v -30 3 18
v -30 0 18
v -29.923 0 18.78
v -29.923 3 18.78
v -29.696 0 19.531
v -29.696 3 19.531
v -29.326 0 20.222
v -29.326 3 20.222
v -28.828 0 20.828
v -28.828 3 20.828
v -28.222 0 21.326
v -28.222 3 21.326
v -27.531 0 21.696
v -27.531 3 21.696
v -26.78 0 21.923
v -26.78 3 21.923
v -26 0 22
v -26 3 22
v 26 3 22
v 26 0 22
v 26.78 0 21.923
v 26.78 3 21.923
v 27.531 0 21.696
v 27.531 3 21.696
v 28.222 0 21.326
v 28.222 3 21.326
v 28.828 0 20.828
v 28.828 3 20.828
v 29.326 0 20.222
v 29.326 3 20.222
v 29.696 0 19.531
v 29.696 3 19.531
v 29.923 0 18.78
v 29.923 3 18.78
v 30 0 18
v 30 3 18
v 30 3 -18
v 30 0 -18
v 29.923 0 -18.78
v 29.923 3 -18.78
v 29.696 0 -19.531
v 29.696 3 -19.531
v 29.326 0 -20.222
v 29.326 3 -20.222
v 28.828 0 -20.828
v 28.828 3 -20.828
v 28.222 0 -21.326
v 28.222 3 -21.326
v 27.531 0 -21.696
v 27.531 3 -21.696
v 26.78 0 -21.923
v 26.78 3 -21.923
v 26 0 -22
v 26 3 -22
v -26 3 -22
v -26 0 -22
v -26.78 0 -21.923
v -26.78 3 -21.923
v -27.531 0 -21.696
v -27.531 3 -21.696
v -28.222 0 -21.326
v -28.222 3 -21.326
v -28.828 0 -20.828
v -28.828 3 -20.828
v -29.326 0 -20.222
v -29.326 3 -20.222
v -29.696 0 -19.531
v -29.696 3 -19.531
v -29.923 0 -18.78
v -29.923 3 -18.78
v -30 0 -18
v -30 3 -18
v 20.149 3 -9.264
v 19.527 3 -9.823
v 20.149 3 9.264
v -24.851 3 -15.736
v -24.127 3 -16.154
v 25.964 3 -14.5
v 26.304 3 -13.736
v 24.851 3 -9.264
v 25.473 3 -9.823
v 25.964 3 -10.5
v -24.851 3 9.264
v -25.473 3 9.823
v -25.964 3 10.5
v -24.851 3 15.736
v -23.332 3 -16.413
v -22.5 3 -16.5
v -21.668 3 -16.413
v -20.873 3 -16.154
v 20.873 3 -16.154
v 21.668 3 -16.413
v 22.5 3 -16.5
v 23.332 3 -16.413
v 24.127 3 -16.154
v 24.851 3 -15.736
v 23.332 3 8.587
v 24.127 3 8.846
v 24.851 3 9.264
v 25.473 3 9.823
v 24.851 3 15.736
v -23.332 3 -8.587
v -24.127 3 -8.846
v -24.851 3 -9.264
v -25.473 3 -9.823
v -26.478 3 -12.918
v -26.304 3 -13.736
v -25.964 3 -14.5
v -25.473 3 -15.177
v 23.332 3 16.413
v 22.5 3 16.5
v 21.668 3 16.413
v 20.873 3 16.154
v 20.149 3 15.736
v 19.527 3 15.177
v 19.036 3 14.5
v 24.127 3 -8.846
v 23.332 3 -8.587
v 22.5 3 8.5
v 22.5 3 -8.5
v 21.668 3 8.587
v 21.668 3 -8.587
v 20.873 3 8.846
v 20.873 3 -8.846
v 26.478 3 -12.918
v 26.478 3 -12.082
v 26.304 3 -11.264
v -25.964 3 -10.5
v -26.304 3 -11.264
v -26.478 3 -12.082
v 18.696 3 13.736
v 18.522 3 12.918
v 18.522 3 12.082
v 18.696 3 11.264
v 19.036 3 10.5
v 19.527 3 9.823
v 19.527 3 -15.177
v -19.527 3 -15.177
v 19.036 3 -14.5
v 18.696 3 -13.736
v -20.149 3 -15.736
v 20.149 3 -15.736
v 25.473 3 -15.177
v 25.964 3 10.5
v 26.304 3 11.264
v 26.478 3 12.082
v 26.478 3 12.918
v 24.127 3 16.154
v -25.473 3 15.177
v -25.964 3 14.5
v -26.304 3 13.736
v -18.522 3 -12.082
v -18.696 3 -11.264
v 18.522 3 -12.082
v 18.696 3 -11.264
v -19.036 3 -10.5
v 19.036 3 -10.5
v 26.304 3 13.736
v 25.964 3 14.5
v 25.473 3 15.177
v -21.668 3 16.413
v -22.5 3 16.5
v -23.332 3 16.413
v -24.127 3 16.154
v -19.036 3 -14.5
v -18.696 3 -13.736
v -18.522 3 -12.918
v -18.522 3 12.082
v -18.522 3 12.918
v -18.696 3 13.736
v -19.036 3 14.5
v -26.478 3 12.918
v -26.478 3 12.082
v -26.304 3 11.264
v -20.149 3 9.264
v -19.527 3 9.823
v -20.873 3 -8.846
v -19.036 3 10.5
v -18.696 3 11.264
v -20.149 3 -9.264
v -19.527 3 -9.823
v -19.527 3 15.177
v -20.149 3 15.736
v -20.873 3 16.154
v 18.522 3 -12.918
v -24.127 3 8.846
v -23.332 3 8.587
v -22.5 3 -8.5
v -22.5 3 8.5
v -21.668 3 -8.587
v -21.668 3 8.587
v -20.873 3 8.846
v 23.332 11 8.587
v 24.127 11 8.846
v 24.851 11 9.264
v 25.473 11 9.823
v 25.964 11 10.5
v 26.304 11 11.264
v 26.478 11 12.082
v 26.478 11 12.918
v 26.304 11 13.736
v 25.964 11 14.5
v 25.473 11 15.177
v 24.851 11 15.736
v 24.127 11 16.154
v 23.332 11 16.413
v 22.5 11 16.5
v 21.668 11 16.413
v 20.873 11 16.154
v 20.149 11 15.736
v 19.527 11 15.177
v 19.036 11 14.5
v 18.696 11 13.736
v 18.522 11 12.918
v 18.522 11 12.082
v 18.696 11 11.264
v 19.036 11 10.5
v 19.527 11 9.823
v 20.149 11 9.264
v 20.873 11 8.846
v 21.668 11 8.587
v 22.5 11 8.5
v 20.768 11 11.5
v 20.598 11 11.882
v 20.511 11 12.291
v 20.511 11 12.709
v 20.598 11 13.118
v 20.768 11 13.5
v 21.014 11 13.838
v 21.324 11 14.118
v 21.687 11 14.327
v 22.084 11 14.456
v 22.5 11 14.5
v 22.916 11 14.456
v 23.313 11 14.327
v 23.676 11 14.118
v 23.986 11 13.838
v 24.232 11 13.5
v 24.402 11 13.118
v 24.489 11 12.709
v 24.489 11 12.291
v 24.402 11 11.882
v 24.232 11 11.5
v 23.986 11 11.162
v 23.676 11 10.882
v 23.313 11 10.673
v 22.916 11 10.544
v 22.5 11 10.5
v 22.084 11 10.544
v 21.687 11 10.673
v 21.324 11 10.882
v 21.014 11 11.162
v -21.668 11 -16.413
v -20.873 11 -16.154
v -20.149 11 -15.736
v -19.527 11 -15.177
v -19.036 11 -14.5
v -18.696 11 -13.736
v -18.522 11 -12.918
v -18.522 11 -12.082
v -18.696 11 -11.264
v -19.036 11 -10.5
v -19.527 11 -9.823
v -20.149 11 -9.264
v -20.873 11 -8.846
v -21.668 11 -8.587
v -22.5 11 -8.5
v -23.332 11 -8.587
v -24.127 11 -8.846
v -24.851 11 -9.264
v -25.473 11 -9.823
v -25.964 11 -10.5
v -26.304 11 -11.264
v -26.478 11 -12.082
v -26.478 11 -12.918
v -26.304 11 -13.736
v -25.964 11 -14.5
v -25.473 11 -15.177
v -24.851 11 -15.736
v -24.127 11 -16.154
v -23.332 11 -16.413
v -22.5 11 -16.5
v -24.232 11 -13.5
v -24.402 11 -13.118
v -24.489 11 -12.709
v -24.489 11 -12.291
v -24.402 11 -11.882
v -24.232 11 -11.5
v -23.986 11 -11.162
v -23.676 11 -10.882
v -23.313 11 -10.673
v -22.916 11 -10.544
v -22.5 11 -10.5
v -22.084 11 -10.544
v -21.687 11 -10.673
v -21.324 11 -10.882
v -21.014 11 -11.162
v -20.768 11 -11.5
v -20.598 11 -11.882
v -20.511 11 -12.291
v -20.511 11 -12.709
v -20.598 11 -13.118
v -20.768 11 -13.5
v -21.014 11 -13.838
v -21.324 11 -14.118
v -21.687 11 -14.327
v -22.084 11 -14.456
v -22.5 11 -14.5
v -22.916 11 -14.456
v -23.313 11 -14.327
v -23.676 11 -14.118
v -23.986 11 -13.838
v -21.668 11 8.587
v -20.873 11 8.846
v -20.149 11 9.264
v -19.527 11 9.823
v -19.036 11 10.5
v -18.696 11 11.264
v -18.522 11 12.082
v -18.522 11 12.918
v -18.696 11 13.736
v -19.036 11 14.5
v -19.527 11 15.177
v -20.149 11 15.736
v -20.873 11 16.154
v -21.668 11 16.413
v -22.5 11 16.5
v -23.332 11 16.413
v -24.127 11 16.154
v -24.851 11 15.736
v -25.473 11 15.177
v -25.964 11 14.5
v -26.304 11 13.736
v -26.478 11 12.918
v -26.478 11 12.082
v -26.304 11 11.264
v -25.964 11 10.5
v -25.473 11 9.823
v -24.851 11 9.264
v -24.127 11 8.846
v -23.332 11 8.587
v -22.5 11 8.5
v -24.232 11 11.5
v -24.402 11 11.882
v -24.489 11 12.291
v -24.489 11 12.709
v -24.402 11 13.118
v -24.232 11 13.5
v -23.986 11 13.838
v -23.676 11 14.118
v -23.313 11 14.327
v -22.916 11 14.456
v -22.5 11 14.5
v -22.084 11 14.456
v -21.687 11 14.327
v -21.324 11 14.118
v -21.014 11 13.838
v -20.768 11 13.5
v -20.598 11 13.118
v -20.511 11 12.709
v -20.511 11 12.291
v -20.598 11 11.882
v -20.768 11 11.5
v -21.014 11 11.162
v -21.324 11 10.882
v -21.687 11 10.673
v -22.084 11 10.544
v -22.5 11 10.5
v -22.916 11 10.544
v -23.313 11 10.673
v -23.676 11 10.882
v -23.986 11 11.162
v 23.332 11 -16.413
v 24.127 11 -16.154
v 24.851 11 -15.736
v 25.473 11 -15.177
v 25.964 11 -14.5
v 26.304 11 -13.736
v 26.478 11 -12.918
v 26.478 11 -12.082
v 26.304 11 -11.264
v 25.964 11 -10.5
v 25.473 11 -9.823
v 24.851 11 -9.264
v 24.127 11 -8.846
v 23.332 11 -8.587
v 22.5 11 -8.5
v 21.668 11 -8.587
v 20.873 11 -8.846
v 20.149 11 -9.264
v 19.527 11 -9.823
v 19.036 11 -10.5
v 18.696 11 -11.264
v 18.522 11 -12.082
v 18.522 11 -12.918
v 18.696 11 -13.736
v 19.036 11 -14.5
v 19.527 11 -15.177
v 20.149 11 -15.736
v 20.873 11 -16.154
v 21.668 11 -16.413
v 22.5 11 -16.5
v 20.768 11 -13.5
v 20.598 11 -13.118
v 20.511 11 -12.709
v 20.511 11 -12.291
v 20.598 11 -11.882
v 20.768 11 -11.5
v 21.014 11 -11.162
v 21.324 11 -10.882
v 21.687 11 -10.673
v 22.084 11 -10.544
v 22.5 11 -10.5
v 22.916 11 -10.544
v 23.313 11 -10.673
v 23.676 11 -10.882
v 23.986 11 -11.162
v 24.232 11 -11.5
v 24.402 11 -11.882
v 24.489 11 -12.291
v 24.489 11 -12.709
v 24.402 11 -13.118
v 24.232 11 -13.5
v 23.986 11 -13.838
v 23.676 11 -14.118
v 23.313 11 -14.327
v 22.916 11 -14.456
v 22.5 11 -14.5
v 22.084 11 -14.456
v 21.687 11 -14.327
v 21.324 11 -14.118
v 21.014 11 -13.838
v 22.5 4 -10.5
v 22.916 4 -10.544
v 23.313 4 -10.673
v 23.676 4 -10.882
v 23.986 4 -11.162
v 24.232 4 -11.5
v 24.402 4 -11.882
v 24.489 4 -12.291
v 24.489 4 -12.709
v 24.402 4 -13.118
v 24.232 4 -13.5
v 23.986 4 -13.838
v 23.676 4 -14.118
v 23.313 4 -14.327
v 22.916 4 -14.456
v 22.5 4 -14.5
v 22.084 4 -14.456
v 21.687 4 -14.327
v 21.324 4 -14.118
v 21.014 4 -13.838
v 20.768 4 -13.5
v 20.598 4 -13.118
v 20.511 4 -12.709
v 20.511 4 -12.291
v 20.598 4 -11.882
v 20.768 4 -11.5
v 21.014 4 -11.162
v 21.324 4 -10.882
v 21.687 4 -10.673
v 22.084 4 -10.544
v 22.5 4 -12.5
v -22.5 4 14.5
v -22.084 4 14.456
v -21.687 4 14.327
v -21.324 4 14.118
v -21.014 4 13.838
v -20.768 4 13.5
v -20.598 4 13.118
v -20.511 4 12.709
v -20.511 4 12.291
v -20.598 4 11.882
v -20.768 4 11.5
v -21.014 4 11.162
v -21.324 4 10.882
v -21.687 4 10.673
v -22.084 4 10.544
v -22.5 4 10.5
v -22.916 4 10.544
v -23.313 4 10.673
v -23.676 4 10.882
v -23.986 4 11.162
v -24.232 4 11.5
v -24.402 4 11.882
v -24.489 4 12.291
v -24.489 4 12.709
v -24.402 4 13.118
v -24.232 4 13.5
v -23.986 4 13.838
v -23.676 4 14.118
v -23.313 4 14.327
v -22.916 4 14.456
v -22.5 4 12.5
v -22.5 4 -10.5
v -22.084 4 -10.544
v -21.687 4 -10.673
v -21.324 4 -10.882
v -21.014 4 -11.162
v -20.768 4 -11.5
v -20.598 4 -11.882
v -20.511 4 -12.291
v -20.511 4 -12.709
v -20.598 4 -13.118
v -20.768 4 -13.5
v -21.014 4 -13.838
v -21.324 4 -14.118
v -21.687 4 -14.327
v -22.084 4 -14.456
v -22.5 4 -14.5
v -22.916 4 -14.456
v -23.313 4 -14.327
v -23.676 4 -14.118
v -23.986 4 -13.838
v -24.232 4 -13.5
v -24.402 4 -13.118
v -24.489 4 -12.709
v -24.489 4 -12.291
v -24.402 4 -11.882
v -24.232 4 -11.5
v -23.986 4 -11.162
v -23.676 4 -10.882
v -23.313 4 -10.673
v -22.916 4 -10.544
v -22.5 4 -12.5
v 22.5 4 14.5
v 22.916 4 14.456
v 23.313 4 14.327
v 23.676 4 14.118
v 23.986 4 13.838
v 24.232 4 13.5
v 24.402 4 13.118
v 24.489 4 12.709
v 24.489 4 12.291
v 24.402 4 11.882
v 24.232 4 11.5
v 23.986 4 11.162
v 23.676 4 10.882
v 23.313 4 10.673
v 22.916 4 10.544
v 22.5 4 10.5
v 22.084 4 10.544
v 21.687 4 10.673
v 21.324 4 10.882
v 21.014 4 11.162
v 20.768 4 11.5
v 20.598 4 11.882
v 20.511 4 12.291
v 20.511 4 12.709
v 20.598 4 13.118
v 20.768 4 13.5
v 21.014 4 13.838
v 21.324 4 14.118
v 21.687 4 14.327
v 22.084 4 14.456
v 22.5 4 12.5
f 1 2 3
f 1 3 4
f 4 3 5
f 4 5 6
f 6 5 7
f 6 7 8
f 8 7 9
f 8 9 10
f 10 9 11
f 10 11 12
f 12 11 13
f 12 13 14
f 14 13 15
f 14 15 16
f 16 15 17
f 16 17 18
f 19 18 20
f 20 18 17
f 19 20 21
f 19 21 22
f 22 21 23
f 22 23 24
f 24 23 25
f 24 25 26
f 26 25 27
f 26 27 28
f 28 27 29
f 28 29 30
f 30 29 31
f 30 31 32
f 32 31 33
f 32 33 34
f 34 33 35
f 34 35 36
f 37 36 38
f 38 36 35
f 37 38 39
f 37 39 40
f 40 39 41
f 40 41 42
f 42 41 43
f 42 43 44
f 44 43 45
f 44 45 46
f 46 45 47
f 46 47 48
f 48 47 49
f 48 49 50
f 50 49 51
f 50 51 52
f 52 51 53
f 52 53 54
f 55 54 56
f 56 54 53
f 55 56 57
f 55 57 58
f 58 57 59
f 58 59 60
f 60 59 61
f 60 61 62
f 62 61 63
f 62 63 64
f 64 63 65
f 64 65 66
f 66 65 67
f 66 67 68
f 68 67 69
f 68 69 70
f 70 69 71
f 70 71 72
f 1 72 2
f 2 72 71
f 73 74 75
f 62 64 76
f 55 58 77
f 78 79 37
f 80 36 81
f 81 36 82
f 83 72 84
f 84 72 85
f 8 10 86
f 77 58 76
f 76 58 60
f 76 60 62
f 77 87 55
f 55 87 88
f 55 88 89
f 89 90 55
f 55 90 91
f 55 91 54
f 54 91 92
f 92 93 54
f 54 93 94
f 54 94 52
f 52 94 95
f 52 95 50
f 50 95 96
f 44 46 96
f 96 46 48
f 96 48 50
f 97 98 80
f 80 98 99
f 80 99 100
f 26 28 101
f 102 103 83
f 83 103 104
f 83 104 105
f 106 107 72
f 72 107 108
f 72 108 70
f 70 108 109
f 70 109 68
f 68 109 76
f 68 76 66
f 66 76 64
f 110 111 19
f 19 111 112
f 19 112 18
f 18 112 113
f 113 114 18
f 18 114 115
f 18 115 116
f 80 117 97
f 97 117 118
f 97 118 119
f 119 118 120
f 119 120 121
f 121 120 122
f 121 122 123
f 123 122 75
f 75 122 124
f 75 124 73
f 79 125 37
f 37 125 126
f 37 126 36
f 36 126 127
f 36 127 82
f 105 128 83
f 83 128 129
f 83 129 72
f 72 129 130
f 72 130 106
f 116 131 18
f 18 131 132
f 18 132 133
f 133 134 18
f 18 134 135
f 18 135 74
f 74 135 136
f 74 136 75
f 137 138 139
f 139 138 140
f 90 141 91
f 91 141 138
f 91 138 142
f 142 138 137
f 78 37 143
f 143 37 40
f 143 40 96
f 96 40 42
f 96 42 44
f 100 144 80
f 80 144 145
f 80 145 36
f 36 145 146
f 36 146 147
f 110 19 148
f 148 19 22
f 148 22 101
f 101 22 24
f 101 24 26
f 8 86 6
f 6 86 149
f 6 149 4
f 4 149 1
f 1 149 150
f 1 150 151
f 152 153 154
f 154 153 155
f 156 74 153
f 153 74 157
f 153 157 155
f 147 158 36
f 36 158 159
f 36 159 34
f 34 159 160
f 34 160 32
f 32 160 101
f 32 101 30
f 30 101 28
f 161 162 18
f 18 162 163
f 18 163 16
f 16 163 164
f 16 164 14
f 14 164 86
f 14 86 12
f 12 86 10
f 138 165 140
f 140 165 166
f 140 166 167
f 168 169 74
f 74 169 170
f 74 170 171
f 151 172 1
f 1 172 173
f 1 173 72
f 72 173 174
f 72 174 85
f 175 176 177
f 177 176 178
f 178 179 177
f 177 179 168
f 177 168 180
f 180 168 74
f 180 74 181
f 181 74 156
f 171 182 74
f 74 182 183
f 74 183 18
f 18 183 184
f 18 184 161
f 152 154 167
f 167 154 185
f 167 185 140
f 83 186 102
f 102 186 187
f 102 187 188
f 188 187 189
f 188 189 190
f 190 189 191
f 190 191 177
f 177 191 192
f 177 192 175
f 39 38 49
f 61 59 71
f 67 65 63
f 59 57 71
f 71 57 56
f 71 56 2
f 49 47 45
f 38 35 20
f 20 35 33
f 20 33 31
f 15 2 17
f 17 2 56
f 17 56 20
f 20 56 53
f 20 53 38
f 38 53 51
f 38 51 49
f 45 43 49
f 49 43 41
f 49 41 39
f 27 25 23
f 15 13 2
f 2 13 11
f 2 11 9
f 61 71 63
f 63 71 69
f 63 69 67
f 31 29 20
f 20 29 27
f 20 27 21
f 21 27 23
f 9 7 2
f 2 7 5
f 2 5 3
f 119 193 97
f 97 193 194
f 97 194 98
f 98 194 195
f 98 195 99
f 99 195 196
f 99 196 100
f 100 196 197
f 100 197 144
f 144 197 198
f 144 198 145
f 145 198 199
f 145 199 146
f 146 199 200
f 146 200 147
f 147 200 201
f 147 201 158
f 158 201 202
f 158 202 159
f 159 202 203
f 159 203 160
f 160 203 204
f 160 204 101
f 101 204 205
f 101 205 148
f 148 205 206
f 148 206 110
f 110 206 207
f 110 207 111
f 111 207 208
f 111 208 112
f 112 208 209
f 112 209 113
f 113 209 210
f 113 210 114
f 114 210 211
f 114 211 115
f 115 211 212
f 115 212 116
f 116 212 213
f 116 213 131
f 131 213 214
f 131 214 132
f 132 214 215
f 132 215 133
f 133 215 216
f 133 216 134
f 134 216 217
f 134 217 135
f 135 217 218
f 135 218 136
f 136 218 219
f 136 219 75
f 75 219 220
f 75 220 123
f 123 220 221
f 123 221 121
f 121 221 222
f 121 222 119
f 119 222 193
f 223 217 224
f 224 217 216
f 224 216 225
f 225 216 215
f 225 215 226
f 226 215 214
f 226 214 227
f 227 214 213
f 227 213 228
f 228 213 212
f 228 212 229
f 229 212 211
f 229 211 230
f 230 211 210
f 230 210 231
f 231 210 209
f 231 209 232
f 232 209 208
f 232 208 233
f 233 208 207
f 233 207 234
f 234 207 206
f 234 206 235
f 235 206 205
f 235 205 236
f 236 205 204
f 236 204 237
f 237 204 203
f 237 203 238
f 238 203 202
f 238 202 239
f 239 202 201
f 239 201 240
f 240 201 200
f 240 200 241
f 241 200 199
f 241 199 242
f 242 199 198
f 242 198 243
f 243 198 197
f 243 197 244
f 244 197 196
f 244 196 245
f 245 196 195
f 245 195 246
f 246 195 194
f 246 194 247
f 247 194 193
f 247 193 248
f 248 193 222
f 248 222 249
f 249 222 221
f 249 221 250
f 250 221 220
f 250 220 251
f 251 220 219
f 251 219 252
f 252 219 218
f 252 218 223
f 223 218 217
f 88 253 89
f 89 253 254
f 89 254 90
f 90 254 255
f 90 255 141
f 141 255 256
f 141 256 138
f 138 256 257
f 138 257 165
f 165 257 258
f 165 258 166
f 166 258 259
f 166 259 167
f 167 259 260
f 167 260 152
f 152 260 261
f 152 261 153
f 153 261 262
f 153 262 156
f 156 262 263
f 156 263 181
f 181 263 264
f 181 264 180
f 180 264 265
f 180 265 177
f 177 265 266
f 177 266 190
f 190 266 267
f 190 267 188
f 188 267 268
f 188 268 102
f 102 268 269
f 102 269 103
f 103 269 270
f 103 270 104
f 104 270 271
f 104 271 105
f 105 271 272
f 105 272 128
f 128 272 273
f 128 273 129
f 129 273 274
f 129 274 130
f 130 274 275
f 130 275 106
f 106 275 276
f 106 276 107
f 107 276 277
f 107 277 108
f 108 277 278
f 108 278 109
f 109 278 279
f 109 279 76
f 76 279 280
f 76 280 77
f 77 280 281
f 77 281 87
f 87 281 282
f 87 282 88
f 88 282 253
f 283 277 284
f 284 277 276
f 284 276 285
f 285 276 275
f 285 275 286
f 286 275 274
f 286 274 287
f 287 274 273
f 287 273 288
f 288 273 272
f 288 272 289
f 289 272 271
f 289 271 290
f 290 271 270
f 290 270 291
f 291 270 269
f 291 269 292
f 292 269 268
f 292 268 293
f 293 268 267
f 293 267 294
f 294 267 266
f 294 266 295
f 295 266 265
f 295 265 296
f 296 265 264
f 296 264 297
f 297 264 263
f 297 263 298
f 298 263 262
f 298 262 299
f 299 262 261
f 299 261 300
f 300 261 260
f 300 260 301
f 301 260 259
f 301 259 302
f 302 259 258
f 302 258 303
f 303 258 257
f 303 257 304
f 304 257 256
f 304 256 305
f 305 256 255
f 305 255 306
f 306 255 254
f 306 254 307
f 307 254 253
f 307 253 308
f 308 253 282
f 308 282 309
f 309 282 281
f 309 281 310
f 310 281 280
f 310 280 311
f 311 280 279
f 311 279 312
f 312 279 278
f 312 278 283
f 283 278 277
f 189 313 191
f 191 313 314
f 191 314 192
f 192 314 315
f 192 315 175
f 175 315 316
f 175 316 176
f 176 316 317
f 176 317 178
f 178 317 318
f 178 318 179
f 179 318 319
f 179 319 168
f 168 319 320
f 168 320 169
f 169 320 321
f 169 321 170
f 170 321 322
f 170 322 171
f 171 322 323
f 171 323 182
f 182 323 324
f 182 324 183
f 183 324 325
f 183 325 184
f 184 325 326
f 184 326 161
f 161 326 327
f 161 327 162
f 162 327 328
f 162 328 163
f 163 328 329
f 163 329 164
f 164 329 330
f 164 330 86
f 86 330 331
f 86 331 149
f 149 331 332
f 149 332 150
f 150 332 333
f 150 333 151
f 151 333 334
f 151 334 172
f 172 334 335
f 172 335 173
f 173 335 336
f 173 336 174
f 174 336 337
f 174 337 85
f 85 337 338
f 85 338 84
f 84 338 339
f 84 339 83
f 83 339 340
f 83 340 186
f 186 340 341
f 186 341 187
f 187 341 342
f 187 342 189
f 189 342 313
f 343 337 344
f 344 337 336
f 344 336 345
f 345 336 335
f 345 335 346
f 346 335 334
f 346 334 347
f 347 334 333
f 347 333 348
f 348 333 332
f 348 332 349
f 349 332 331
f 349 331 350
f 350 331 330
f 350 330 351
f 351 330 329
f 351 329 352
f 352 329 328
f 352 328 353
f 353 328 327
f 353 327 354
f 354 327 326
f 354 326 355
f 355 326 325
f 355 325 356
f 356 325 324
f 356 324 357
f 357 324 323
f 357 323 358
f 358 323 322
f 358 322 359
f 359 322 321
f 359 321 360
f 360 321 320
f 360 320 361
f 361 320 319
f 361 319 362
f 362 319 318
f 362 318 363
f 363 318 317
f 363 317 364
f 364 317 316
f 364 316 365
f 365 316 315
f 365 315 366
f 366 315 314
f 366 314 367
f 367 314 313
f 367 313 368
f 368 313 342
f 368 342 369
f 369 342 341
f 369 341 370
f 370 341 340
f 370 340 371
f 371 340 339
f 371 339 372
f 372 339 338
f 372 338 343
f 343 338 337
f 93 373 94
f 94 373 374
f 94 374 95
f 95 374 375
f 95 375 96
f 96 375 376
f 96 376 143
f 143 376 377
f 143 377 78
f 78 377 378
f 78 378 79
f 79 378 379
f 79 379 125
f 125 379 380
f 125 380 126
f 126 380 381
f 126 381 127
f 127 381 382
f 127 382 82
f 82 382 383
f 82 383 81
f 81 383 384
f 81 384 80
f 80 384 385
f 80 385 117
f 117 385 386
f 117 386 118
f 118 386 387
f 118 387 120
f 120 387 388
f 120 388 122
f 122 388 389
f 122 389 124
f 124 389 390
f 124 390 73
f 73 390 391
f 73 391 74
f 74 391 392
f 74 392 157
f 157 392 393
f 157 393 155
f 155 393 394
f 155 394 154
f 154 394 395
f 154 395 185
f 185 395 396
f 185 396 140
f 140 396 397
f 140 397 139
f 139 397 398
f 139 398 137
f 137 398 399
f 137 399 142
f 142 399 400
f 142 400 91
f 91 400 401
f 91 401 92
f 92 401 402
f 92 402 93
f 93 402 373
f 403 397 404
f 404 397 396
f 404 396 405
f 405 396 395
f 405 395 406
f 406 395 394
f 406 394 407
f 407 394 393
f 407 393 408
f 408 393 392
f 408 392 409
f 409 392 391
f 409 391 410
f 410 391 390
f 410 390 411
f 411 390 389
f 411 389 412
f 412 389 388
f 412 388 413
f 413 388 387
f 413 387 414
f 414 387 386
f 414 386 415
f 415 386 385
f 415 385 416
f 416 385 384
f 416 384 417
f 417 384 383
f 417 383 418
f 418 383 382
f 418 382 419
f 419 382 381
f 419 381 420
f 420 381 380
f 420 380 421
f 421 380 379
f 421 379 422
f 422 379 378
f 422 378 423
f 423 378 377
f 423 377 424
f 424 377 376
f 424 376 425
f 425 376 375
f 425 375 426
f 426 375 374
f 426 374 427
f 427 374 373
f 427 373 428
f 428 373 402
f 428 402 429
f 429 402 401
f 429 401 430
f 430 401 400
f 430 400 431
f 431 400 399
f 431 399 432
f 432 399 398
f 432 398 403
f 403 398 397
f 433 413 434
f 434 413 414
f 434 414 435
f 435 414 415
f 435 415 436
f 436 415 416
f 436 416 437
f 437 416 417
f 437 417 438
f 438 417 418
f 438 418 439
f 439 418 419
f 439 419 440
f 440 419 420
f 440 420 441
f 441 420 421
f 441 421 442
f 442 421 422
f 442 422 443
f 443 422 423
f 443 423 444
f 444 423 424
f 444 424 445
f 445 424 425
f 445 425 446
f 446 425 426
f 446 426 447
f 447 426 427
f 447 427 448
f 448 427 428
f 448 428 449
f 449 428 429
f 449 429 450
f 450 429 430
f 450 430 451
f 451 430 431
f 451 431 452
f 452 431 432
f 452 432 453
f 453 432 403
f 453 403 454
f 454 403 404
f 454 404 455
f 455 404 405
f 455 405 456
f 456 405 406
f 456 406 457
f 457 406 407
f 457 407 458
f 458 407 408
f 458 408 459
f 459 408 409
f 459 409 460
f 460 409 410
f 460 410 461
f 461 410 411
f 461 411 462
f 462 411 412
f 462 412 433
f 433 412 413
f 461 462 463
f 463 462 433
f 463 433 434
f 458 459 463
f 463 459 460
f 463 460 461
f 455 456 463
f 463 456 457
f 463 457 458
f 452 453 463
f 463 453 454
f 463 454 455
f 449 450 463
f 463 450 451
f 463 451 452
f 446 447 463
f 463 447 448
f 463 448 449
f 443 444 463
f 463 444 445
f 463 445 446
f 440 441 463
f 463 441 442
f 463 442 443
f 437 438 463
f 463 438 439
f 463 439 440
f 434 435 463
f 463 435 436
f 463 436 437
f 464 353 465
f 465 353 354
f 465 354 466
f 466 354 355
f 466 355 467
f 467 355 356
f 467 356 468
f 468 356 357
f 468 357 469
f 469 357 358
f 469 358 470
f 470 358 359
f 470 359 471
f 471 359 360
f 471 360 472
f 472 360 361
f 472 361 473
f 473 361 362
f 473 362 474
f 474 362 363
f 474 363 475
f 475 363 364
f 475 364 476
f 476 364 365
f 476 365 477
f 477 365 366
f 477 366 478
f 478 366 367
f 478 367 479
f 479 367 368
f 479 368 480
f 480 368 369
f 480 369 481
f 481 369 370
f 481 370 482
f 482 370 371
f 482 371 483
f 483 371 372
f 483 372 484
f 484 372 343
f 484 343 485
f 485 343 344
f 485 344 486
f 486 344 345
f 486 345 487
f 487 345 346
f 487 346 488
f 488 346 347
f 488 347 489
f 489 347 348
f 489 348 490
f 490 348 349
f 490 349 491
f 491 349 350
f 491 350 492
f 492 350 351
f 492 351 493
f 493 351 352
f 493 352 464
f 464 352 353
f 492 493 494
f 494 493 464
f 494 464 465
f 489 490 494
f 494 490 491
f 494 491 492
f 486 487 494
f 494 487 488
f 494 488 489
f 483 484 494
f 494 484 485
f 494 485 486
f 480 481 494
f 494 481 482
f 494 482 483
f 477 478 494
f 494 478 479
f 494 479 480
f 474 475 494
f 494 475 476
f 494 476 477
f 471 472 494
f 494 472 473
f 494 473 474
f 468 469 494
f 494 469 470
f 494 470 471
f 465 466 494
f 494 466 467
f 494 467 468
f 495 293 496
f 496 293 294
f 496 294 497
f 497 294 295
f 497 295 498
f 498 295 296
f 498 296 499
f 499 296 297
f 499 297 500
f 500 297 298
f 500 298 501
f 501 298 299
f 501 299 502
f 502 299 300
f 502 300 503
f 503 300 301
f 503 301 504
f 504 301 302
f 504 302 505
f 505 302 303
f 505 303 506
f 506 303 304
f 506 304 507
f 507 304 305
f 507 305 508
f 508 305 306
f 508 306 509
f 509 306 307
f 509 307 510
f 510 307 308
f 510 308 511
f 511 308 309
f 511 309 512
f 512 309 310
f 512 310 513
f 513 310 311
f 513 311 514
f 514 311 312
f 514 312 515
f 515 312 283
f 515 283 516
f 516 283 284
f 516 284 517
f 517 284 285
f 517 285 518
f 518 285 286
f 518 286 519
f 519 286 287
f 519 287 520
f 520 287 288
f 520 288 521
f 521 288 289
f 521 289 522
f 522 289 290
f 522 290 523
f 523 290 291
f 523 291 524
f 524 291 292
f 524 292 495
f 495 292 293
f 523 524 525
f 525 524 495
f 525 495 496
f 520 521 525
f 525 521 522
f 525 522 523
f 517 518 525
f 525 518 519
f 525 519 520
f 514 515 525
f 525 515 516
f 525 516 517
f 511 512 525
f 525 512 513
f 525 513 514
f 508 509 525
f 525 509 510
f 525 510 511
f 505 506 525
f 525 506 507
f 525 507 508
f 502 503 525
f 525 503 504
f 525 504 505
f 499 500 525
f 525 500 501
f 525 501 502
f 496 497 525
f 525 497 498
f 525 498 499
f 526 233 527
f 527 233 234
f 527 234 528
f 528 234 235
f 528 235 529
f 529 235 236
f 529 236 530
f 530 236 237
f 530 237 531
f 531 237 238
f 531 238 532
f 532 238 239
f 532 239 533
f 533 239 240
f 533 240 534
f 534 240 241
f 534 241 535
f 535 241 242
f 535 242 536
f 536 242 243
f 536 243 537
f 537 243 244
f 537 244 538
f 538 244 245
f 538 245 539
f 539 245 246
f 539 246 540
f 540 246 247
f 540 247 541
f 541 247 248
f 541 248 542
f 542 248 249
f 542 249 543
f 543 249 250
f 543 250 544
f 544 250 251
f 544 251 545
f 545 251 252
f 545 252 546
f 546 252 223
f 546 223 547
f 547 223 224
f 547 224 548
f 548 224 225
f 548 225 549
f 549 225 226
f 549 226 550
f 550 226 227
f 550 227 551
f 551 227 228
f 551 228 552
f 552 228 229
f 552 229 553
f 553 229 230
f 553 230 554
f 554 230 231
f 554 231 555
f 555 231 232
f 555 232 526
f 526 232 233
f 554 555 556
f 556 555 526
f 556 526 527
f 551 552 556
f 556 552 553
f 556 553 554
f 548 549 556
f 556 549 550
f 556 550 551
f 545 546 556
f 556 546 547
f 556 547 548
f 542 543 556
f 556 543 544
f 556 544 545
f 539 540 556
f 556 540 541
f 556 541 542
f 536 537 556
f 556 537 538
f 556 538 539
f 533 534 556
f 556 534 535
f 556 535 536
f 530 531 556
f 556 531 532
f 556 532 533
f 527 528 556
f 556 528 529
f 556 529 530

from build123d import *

# Parameters (mm, degrees)
BOSS_EXTRUDE1_DEPTH = 3
SKETCH2_R           = 4
BOSS_EXTRUDE2_DEPTH = 8
SKETCH3_R           = 2
CUT_EXTRUDE1_DEPTH  = 7


with BuildPart() as part:
    # Sketch1 → Boss-Extrude1 (new body)
    with BuildSketch(Plane(origin=(0, 0, 0), x_dir=(1, 0, 0), z_dir=(0, 1, 0))):
        with BuildLine():
            Line((-26, -22), (26, -22))
            ThreePointArc((26, -22), (28.828427125, -20.828427125), (30, -18))
            Line((30, -18), (30, 18))
            ThreePointArc((30, 18), (28.828427125, 20.828427125), (26, 22))
            Line((26, 22), (-26, 22))
            ThreePointArc((-26, 22), (-28.828427125, 20.828427125), (-30, 18))
            Line((-30, 18), (-30, -18))
            ThreePointArc((-30, -18), (-28.828427125, -20.828427125), (-26, -22))
        make_face()
    extrude(amount=BOSS_EXTRUDE1_DEPTH)

    # Sketch2 → Boss-Extrude2 (add)
    with BuildSketch(Plane(origin=(0, 3, 0), x_dir=(1, 0, 0), z_dir=(0, 1, 0))):
        with Locations(Location((22.5, -12.5, 0), (0, 0, 270))):
            Circle(SKETCH2_R)
        with Locations(Location((22.5, 12.5, 0), (0, 0, 270))):
            Circle(SKETCH2_R)
        with Locations(Location((-22.5, -12.5, 0), (0, 0, 270))):
            Circle(SKETCH2_R)
        with Locations(Location((-22.5, 12.5, 0), (0, 0, 270))):
            Circle(SKETCH2_R)
    extrude(amount=BOSS_EXTRUDE2_DEPTH)

    # Sketch3 → Cut-Extrude1 (cut)
    with BuildSketch(Plane(origin=(0, 11, 0), x_dir=(1, 0, 0), z_dir=(0, 1, 0))):
        with Locations(Location((22.5, -12.5, 0), (0, 0, 270))):
            Circle(SKETCH3_R)
        with Locations(Location((22.5, 12.5, 0), (0, 0, 270))):
            Circle(SKETCH3_R)
        with Locations(Location((-22.5, -12.5, 0), (0, 0, 270))):
            Circle(SKETCH3_R)
        with Locations(Location((-22.5, 12.5, 0), (0, 0, 270))):
            Circle(SKETCH3_R)
    extrude(amount=-CUT_EXTRUDE1_DEPTH, mode=Mode.SUBTRACT)


solid = part.part
